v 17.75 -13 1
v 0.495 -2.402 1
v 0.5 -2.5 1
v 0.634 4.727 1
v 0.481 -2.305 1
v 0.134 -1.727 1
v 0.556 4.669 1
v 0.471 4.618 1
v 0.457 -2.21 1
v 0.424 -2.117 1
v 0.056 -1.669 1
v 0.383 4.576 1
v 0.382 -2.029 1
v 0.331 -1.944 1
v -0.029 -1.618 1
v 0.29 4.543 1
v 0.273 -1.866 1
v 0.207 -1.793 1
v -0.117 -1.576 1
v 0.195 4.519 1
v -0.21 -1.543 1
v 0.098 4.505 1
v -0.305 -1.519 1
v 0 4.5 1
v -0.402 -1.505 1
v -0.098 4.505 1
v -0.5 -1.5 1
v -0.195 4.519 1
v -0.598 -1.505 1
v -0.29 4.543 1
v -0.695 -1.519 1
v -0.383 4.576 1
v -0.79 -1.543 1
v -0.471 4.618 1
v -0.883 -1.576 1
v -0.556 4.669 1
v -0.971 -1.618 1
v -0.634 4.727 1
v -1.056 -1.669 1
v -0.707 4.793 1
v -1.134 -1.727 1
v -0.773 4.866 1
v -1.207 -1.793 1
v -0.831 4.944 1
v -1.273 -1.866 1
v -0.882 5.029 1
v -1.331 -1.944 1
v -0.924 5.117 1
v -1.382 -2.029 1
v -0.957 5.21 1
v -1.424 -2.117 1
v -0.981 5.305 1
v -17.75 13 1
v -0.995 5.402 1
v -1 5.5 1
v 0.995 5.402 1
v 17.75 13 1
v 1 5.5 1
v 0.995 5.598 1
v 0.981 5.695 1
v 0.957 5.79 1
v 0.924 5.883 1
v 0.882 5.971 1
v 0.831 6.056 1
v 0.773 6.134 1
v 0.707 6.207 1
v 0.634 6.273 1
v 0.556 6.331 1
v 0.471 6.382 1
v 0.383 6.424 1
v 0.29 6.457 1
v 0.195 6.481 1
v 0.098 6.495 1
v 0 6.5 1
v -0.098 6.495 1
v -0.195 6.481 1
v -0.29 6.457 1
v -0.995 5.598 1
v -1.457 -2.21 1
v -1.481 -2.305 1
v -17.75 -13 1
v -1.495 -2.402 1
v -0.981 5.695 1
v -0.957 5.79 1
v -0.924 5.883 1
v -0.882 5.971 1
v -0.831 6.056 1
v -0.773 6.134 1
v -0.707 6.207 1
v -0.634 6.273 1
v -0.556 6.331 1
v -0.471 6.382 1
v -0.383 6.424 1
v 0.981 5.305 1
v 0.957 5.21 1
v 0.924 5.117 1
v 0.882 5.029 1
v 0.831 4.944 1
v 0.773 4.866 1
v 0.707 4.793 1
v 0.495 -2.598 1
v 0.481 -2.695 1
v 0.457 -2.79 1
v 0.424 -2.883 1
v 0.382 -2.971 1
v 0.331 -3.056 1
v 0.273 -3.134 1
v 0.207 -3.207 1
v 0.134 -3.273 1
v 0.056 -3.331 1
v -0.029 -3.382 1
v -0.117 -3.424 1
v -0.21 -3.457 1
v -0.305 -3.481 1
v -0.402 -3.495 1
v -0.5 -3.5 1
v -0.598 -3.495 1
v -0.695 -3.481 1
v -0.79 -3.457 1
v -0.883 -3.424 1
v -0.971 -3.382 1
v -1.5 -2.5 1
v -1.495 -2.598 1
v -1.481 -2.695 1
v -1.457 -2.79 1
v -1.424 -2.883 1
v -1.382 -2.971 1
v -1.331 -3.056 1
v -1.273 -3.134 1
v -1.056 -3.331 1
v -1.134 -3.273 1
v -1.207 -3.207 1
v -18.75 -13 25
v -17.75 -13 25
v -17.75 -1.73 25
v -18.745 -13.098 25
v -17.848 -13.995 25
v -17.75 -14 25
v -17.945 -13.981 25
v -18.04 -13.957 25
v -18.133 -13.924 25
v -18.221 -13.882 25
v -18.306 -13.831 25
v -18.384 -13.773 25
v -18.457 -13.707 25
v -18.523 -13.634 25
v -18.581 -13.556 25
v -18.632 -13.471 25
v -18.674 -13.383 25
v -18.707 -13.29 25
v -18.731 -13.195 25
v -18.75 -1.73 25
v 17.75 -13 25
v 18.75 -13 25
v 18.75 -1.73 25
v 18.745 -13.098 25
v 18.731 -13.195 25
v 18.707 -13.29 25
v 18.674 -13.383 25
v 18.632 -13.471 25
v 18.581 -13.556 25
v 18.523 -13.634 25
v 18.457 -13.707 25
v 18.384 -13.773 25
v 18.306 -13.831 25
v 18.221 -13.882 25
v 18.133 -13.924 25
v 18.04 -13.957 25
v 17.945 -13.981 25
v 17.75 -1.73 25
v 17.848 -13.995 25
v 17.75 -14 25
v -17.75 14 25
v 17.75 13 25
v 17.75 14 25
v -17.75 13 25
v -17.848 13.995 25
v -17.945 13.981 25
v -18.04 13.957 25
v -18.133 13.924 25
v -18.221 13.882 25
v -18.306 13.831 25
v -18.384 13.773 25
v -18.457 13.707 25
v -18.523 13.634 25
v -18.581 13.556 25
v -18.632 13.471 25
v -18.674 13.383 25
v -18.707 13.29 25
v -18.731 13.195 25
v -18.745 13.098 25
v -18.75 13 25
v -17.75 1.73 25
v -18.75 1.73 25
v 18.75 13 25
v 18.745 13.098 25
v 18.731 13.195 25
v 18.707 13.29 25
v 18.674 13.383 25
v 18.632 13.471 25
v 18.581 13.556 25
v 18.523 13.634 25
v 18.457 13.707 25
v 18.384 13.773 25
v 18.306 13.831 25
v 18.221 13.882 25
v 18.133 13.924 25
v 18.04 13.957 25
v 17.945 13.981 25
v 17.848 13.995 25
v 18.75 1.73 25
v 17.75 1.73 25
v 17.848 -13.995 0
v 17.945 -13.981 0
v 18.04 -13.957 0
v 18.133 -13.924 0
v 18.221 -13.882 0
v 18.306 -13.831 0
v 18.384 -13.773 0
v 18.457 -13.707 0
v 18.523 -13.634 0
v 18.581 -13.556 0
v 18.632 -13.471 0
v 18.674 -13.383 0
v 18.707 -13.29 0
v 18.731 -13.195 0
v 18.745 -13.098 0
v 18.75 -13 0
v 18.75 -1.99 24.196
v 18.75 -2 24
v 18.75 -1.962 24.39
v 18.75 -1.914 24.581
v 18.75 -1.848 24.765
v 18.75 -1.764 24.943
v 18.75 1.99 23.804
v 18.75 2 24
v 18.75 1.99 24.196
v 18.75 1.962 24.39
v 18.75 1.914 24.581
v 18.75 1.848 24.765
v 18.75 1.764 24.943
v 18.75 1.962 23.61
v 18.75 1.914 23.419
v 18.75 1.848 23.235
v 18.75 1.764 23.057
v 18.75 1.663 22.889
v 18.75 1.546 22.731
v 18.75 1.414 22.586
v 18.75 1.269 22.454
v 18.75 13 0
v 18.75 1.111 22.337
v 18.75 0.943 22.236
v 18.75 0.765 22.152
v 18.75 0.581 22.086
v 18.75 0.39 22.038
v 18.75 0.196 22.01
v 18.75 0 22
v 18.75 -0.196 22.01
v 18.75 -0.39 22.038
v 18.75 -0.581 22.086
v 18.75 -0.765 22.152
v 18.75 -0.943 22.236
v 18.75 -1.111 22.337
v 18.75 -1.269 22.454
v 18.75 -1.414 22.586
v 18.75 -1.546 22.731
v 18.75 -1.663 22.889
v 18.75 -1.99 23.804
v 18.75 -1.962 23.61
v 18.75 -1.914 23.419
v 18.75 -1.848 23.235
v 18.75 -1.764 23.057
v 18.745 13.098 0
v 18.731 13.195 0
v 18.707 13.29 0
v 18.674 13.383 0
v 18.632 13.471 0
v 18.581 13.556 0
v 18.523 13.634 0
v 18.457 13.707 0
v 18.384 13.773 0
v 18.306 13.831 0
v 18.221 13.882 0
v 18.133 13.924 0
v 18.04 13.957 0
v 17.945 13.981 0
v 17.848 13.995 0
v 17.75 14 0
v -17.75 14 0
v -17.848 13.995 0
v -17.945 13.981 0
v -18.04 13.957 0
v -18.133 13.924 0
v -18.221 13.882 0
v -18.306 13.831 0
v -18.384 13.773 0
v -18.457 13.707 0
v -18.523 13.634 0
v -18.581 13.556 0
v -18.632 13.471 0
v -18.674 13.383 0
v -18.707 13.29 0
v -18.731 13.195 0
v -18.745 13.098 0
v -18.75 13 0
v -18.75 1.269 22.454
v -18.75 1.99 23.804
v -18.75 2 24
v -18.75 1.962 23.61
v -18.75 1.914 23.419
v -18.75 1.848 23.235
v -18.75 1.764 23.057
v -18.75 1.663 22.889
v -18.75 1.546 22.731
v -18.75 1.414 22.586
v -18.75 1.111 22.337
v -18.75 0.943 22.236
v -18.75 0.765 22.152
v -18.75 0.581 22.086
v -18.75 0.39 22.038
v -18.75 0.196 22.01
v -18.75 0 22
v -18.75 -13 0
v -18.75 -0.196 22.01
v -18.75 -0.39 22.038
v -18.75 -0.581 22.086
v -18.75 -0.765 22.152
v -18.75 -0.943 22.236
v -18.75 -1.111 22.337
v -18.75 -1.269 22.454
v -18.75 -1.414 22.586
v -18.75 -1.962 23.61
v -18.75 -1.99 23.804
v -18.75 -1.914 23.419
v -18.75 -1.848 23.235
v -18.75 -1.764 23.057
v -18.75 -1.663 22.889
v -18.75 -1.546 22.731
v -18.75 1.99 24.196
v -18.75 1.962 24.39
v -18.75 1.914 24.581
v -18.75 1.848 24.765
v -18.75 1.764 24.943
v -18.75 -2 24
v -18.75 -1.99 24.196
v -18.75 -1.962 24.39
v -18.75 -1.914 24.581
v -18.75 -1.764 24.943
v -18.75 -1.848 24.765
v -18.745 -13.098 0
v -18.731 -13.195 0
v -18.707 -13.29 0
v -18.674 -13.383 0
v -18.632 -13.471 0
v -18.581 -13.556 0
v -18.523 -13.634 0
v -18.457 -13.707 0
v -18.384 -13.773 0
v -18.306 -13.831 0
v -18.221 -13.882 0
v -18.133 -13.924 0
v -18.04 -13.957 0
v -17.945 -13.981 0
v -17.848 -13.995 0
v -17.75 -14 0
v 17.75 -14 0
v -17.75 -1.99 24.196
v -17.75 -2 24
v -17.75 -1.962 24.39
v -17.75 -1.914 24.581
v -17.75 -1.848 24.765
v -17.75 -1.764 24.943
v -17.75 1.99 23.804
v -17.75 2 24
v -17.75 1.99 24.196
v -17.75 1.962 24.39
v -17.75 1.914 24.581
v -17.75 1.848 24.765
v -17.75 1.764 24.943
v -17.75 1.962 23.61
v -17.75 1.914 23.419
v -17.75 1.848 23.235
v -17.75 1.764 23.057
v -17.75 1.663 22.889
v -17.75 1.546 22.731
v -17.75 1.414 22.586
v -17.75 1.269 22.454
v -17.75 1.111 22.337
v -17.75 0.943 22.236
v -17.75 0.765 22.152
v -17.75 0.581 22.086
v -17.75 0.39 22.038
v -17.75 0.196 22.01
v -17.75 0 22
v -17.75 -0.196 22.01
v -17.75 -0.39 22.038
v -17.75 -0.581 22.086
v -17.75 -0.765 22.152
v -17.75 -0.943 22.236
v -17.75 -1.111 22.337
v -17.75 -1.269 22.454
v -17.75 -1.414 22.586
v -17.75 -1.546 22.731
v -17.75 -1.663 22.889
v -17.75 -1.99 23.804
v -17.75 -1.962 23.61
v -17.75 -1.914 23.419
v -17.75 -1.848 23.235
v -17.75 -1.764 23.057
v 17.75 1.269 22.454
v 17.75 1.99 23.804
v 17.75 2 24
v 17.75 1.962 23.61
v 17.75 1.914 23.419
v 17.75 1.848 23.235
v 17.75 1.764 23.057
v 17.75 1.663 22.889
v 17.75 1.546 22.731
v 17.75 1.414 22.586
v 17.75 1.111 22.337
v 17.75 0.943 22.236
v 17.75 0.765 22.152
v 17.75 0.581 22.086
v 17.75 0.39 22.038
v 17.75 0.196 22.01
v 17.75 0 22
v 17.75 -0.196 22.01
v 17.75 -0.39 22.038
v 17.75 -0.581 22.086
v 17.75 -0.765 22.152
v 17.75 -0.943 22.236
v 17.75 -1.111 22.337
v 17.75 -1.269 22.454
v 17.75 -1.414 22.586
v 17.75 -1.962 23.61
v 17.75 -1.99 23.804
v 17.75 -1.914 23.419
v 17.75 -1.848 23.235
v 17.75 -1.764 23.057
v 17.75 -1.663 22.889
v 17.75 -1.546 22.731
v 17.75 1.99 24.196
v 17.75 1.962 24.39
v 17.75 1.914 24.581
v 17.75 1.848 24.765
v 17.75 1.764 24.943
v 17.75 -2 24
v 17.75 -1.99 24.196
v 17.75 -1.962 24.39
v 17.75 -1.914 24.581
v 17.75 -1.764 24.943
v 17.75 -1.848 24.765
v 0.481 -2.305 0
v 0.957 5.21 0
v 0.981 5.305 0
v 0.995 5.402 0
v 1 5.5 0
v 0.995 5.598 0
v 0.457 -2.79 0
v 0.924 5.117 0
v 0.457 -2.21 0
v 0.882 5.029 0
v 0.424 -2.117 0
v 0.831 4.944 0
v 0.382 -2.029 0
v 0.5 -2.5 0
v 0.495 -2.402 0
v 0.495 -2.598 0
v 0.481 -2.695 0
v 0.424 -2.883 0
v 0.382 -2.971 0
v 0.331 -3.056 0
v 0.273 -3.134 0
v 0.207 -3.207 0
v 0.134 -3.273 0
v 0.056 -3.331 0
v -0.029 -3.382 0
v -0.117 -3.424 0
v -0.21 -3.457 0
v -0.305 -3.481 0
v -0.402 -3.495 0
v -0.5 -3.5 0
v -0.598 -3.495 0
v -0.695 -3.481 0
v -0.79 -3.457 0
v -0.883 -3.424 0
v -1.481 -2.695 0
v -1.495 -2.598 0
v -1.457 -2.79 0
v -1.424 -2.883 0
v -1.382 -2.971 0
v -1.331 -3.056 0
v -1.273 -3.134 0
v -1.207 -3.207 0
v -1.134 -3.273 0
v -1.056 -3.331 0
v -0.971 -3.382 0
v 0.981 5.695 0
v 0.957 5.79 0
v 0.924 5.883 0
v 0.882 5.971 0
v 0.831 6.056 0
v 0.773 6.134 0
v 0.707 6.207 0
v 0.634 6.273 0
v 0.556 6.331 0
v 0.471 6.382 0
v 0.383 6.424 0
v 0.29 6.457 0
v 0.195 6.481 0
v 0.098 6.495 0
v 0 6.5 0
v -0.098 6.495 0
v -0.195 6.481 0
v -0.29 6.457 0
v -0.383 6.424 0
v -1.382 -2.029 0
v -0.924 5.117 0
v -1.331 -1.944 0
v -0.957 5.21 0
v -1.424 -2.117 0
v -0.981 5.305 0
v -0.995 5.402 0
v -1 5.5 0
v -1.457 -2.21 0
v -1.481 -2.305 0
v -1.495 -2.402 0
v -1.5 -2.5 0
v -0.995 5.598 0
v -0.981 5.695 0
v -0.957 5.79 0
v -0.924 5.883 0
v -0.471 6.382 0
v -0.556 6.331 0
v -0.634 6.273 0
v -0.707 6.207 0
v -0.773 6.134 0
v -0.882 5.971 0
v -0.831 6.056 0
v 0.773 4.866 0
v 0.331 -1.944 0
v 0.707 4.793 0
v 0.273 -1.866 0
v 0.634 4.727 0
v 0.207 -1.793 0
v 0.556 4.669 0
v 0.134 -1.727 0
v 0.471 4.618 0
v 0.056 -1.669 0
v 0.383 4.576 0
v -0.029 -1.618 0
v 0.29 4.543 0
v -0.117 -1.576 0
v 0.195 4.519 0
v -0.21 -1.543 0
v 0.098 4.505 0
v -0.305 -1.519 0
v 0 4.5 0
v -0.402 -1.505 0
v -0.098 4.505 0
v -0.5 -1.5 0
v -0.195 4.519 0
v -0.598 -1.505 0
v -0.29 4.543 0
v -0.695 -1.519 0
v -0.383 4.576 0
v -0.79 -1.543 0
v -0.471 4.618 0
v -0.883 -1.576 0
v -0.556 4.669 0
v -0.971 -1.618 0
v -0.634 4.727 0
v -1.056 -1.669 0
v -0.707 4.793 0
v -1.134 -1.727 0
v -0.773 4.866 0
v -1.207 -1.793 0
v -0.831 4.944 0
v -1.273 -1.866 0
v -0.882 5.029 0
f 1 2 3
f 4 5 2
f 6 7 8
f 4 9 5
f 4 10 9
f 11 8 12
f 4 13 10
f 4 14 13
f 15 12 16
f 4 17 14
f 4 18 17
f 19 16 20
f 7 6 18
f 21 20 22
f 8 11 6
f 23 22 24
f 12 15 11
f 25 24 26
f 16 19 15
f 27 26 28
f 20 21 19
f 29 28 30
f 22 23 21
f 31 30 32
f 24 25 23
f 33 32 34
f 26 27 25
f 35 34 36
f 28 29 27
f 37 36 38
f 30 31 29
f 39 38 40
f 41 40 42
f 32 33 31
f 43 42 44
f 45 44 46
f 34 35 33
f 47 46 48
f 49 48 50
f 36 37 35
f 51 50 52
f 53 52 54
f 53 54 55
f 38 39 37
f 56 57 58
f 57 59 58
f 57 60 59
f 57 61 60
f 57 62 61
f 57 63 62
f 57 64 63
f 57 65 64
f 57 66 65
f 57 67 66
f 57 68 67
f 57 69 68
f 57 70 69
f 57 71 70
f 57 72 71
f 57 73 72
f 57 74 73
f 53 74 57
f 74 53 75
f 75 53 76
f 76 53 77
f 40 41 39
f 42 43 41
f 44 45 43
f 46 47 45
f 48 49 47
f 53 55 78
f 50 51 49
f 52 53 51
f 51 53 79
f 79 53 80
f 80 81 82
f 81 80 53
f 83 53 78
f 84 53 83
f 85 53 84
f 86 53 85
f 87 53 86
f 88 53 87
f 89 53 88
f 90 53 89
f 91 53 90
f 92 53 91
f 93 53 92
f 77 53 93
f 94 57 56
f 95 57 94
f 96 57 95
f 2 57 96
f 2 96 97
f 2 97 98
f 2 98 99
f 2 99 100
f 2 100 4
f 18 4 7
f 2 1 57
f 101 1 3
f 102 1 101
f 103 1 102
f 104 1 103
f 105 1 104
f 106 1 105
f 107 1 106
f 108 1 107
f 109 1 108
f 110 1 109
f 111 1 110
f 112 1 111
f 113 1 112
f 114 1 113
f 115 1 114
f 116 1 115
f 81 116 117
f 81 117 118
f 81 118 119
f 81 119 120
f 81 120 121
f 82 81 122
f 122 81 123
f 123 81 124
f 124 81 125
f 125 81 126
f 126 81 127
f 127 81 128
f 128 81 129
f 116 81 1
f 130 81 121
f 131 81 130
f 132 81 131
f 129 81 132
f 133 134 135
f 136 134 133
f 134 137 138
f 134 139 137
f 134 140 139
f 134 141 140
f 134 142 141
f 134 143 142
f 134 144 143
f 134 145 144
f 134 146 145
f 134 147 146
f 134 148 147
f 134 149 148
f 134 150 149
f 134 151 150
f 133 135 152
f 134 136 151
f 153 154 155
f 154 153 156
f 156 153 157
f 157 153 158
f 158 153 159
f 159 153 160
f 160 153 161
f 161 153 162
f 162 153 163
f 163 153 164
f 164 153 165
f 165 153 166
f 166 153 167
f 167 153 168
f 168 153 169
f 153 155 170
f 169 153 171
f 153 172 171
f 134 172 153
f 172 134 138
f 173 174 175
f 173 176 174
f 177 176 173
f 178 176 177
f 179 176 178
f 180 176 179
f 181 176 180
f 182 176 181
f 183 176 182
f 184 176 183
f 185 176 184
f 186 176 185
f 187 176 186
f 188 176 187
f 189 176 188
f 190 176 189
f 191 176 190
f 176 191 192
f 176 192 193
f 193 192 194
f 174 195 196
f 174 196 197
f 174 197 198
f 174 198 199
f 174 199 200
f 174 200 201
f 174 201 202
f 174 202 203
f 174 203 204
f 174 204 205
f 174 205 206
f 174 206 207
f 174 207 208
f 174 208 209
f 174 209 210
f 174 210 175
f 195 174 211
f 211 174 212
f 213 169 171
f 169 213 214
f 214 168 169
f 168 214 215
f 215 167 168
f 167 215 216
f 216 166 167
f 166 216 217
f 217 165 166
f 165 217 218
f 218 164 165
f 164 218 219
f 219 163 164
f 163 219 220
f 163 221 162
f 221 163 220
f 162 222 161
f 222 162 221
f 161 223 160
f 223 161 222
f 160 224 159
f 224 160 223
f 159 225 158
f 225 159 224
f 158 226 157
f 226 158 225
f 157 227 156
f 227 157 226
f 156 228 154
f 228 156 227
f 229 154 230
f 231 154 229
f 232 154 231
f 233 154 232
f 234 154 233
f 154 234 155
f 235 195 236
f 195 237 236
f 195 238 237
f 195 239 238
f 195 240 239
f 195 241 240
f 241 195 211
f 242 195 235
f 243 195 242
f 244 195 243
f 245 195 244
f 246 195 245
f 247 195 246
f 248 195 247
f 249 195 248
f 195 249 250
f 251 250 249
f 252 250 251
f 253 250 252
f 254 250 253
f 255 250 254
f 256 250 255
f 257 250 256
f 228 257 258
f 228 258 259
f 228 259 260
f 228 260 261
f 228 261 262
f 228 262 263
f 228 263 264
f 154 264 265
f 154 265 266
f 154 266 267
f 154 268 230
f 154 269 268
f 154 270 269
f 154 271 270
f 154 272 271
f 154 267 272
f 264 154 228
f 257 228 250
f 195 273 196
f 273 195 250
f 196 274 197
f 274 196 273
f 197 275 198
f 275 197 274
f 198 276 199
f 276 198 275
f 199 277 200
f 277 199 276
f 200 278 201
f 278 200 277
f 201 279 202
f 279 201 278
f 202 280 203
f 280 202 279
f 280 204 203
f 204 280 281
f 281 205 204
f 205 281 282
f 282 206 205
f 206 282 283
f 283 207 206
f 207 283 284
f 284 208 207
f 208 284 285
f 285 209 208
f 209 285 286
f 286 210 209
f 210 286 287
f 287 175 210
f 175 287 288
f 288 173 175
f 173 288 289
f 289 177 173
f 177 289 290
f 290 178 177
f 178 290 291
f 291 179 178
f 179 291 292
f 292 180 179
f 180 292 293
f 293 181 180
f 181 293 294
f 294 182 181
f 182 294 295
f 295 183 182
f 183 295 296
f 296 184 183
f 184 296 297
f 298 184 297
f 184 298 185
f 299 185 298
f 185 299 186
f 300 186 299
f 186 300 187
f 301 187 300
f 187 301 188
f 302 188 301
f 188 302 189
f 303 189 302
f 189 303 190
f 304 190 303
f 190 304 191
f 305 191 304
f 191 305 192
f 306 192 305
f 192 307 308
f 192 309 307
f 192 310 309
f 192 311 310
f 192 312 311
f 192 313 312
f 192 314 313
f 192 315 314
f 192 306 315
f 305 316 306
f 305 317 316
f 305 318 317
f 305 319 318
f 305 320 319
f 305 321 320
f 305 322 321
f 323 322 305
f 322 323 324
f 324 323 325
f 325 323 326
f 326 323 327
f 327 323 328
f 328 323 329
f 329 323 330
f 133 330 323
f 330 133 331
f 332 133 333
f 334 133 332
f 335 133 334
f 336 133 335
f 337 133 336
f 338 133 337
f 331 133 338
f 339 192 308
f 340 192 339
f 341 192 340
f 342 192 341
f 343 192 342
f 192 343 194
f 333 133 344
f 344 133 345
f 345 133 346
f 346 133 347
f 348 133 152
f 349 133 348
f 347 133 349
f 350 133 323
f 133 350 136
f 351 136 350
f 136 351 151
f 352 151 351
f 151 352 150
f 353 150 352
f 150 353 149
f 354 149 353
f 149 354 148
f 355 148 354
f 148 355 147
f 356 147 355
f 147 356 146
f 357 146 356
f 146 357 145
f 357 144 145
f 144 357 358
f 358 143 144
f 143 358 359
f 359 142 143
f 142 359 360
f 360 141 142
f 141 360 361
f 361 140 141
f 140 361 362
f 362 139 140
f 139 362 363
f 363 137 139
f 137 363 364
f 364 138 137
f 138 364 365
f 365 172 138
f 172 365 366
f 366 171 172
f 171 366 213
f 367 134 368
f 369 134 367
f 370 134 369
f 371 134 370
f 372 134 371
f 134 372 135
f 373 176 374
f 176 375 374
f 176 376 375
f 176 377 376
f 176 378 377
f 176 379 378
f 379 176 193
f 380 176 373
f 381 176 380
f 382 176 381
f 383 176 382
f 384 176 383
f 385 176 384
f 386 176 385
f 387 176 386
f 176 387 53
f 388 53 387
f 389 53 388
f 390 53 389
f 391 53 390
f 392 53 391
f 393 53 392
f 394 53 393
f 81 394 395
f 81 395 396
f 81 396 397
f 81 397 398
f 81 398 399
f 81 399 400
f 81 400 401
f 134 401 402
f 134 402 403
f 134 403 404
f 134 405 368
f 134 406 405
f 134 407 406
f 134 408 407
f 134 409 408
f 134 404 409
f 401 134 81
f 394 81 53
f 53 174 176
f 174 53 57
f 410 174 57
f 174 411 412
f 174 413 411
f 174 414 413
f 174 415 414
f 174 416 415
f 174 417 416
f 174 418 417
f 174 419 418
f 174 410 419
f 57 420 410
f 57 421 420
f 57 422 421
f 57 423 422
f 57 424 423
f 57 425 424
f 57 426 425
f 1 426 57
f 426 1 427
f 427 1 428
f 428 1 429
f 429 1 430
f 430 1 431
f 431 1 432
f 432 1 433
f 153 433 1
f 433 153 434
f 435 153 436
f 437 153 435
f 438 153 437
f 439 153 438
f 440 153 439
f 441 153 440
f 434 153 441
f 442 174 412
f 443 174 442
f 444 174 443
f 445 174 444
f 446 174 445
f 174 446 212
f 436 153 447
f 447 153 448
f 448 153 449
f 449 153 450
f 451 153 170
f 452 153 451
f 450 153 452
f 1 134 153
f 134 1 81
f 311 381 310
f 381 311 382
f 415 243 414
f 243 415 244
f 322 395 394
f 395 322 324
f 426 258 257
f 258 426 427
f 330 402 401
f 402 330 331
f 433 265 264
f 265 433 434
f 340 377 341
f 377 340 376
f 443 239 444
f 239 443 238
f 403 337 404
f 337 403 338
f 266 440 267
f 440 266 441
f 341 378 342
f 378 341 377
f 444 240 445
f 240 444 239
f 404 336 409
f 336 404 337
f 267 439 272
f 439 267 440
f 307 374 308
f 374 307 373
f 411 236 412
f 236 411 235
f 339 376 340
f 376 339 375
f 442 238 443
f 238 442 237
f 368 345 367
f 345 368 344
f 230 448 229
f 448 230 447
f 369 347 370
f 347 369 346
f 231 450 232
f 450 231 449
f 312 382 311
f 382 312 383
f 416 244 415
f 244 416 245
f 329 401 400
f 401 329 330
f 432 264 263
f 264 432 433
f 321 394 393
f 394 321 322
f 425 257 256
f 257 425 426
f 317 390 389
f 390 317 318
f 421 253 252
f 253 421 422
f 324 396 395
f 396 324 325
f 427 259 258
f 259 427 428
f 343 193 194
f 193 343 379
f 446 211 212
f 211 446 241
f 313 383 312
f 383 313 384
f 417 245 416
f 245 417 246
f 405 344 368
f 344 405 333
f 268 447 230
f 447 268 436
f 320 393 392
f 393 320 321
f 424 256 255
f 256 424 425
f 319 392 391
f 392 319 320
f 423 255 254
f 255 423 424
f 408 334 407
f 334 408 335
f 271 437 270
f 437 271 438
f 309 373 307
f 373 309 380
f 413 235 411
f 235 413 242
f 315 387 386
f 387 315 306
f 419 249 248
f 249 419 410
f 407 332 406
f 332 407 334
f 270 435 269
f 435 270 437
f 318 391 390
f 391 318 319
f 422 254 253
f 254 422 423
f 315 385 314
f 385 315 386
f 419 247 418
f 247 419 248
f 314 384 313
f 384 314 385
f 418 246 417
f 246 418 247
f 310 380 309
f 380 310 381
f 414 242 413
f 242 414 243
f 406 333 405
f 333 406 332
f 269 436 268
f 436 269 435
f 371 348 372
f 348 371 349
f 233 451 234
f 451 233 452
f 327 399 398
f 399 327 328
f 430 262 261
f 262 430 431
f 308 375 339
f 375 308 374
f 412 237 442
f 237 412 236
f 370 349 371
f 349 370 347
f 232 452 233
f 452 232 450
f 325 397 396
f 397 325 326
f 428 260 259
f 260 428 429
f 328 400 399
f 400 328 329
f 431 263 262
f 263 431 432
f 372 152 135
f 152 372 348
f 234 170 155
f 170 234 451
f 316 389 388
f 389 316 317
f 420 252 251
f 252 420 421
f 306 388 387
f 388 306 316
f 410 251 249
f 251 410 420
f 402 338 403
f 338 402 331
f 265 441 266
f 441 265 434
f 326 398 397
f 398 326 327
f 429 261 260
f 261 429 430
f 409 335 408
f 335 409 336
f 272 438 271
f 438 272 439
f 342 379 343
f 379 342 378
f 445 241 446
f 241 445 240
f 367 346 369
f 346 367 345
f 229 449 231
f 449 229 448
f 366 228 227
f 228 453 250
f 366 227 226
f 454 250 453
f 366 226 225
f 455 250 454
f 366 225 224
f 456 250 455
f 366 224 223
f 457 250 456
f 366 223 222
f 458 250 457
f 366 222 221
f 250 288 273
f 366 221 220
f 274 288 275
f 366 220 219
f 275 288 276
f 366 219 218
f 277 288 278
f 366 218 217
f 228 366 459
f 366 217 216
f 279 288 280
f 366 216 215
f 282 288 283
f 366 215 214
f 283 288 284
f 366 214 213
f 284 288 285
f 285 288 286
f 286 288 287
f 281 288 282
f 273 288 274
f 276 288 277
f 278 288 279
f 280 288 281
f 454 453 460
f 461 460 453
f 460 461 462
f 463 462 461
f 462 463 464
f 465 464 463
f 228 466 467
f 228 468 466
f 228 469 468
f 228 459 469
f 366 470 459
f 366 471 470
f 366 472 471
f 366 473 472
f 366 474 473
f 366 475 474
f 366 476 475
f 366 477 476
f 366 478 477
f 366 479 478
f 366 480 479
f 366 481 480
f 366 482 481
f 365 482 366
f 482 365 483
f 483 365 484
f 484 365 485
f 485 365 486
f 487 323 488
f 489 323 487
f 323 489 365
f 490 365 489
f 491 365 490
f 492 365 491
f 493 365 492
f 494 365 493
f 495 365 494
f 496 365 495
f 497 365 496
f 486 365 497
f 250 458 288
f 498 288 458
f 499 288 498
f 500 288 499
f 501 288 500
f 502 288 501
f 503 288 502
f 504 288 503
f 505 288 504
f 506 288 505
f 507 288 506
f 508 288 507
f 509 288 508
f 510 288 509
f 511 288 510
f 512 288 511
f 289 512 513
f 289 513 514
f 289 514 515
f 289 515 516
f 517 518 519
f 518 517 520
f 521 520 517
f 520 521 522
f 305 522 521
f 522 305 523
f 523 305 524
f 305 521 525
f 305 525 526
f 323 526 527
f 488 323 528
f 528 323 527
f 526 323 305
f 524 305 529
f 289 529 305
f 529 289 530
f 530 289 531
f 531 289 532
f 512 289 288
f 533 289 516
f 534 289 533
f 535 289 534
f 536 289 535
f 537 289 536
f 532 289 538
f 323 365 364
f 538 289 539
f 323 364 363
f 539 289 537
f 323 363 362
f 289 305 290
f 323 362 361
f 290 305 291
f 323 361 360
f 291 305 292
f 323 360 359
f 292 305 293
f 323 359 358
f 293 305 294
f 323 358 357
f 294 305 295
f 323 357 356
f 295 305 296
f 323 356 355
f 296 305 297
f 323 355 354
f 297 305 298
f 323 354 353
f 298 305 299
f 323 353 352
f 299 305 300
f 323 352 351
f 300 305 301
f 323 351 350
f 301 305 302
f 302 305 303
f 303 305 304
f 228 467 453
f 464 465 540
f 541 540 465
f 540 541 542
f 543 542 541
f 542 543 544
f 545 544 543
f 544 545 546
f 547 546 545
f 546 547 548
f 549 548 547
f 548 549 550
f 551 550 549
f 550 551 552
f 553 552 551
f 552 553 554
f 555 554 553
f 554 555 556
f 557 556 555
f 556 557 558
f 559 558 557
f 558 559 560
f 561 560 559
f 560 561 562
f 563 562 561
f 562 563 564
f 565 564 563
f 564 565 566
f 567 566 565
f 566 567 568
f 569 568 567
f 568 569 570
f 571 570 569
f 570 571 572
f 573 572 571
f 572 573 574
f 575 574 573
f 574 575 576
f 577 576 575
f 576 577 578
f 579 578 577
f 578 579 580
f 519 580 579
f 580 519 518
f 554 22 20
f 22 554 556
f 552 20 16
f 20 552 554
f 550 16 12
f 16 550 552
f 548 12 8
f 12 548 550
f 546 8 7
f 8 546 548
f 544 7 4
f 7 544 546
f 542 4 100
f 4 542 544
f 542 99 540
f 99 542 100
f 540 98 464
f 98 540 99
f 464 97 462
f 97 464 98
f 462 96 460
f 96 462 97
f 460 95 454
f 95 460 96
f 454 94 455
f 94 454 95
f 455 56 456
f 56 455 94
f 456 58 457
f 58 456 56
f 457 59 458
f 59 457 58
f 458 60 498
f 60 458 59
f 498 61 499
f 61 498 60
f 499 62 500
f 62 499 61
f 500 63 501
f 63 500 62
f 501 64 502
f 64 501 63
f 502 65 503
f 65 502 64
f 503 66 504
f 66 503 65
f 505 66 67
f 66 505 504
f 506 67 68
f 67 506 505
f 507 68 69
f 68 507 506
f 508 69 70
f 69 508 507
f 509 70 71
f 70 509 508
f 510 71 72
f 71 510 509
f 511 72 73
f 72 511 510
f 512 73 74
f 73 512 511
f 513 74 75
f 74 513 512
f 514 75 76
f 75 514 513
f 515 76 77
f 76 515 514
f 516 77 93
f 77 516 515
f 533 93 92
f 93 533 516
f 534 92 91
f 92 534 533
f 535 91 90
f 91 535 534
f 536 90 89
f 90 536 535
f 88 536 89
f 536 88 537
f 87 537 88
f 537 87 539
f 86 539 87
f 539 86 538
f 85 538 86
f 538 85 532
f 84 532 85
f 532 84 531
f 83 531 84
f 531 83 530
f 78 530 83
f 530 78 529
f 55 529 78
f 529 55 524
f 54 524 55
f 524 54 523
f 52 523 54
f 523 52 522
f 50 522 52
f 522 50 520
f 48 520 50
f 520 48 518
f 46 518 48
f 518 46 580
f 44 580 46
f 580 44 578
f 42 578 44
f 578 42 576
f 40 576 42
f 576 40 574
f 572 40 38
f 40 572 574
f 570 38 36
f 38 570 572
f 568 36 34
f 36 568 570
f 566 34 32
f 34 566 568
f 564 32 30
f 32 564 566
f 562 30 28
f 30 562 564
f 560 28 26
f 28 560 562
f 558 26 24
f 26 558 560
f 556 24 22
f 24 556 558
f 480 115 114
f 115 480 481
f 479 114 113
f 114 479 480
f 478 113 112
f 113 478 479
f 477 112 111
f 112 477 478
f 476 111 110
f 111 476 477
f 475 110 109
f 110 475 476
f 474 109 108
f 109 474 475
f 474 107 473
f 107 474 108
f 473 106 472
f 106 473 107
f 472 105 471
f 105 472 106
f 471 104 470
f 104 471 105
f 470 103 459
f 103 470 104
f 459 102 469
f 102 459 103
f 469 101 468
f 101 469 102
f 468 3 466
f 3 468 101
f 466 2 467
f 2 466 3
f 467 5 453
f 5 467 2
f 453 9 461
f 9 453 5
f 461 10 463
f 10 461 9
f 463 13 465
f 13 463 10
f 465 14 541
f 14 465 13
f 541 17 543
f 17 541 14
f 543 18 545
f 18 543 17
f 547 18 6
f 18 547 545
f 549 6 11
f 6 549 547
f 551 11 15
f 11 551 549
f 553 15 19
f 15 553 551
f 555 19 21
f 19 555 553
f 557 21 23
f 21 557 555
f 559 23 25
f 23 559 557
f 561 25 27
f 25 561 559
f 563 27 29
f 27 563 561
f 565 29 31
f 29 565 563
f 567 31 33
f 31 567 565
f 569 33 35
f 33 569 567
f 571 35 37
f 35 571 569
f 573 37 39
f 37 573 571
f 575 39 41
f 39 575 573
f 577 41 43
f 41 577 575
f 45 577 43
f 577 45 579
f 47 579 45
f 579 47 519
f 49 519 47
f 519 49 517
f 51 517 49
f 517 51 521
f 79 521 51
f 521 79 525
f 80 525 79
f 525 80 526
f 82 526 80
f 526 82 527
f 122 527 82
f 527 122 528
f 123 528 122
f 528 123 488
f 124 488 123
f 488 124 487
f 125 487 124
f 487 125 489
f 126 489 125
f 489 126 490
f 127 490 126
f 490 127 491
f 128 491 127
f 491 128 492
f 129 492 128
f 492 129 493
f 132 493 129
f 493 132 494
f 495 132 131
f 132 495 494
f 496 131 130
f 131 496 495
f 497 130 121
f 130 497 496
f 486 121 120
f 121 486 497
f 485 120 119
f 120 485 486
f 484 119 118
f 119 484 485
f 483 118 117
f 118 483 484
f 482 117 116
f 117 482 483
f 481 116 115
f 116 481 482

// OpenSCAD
$fn=64;
difference(){
translate([0,0,1])
linear_extrude(24)
difference(){
    offset(1)
    square([35.5,26],center=true);
    square([35.5,26],center=true);
}
translate([-20,0,31.6])
cube([5,11,9],center=true);
hull(){
translate([20,0,34.5])
rotate([0,90,0])
cylinder(d=3,h=10,center=true);
translate([20,0,40.5])
rotate([0,90,0])
cylinder(d=3,h=10,center=true);
}
translate([0,0,24])
rotate([0,90,0])
cylinder(d=4,h=100,center=true);
}
translate([0,0,1])
rotate([0,180,0])
linear_extrude(1)
difference(){
offset(1)
square([35.5,26],center=true);
translate([0,13-7.5,0])
circle(d=2);
translate([17.5-17,13-15.5,0])
circle(d=2);
}
/*
//17.5
translate([0,30,1])
linear_extrude(1)
difference(){
square([35.5,26],center=true);
    square([35.5,20],center=true);
}

translate([0,30,0])
linear_extrude(1)
difference(){
offset(1)
square([35.5,26],center=true);

}
*/
